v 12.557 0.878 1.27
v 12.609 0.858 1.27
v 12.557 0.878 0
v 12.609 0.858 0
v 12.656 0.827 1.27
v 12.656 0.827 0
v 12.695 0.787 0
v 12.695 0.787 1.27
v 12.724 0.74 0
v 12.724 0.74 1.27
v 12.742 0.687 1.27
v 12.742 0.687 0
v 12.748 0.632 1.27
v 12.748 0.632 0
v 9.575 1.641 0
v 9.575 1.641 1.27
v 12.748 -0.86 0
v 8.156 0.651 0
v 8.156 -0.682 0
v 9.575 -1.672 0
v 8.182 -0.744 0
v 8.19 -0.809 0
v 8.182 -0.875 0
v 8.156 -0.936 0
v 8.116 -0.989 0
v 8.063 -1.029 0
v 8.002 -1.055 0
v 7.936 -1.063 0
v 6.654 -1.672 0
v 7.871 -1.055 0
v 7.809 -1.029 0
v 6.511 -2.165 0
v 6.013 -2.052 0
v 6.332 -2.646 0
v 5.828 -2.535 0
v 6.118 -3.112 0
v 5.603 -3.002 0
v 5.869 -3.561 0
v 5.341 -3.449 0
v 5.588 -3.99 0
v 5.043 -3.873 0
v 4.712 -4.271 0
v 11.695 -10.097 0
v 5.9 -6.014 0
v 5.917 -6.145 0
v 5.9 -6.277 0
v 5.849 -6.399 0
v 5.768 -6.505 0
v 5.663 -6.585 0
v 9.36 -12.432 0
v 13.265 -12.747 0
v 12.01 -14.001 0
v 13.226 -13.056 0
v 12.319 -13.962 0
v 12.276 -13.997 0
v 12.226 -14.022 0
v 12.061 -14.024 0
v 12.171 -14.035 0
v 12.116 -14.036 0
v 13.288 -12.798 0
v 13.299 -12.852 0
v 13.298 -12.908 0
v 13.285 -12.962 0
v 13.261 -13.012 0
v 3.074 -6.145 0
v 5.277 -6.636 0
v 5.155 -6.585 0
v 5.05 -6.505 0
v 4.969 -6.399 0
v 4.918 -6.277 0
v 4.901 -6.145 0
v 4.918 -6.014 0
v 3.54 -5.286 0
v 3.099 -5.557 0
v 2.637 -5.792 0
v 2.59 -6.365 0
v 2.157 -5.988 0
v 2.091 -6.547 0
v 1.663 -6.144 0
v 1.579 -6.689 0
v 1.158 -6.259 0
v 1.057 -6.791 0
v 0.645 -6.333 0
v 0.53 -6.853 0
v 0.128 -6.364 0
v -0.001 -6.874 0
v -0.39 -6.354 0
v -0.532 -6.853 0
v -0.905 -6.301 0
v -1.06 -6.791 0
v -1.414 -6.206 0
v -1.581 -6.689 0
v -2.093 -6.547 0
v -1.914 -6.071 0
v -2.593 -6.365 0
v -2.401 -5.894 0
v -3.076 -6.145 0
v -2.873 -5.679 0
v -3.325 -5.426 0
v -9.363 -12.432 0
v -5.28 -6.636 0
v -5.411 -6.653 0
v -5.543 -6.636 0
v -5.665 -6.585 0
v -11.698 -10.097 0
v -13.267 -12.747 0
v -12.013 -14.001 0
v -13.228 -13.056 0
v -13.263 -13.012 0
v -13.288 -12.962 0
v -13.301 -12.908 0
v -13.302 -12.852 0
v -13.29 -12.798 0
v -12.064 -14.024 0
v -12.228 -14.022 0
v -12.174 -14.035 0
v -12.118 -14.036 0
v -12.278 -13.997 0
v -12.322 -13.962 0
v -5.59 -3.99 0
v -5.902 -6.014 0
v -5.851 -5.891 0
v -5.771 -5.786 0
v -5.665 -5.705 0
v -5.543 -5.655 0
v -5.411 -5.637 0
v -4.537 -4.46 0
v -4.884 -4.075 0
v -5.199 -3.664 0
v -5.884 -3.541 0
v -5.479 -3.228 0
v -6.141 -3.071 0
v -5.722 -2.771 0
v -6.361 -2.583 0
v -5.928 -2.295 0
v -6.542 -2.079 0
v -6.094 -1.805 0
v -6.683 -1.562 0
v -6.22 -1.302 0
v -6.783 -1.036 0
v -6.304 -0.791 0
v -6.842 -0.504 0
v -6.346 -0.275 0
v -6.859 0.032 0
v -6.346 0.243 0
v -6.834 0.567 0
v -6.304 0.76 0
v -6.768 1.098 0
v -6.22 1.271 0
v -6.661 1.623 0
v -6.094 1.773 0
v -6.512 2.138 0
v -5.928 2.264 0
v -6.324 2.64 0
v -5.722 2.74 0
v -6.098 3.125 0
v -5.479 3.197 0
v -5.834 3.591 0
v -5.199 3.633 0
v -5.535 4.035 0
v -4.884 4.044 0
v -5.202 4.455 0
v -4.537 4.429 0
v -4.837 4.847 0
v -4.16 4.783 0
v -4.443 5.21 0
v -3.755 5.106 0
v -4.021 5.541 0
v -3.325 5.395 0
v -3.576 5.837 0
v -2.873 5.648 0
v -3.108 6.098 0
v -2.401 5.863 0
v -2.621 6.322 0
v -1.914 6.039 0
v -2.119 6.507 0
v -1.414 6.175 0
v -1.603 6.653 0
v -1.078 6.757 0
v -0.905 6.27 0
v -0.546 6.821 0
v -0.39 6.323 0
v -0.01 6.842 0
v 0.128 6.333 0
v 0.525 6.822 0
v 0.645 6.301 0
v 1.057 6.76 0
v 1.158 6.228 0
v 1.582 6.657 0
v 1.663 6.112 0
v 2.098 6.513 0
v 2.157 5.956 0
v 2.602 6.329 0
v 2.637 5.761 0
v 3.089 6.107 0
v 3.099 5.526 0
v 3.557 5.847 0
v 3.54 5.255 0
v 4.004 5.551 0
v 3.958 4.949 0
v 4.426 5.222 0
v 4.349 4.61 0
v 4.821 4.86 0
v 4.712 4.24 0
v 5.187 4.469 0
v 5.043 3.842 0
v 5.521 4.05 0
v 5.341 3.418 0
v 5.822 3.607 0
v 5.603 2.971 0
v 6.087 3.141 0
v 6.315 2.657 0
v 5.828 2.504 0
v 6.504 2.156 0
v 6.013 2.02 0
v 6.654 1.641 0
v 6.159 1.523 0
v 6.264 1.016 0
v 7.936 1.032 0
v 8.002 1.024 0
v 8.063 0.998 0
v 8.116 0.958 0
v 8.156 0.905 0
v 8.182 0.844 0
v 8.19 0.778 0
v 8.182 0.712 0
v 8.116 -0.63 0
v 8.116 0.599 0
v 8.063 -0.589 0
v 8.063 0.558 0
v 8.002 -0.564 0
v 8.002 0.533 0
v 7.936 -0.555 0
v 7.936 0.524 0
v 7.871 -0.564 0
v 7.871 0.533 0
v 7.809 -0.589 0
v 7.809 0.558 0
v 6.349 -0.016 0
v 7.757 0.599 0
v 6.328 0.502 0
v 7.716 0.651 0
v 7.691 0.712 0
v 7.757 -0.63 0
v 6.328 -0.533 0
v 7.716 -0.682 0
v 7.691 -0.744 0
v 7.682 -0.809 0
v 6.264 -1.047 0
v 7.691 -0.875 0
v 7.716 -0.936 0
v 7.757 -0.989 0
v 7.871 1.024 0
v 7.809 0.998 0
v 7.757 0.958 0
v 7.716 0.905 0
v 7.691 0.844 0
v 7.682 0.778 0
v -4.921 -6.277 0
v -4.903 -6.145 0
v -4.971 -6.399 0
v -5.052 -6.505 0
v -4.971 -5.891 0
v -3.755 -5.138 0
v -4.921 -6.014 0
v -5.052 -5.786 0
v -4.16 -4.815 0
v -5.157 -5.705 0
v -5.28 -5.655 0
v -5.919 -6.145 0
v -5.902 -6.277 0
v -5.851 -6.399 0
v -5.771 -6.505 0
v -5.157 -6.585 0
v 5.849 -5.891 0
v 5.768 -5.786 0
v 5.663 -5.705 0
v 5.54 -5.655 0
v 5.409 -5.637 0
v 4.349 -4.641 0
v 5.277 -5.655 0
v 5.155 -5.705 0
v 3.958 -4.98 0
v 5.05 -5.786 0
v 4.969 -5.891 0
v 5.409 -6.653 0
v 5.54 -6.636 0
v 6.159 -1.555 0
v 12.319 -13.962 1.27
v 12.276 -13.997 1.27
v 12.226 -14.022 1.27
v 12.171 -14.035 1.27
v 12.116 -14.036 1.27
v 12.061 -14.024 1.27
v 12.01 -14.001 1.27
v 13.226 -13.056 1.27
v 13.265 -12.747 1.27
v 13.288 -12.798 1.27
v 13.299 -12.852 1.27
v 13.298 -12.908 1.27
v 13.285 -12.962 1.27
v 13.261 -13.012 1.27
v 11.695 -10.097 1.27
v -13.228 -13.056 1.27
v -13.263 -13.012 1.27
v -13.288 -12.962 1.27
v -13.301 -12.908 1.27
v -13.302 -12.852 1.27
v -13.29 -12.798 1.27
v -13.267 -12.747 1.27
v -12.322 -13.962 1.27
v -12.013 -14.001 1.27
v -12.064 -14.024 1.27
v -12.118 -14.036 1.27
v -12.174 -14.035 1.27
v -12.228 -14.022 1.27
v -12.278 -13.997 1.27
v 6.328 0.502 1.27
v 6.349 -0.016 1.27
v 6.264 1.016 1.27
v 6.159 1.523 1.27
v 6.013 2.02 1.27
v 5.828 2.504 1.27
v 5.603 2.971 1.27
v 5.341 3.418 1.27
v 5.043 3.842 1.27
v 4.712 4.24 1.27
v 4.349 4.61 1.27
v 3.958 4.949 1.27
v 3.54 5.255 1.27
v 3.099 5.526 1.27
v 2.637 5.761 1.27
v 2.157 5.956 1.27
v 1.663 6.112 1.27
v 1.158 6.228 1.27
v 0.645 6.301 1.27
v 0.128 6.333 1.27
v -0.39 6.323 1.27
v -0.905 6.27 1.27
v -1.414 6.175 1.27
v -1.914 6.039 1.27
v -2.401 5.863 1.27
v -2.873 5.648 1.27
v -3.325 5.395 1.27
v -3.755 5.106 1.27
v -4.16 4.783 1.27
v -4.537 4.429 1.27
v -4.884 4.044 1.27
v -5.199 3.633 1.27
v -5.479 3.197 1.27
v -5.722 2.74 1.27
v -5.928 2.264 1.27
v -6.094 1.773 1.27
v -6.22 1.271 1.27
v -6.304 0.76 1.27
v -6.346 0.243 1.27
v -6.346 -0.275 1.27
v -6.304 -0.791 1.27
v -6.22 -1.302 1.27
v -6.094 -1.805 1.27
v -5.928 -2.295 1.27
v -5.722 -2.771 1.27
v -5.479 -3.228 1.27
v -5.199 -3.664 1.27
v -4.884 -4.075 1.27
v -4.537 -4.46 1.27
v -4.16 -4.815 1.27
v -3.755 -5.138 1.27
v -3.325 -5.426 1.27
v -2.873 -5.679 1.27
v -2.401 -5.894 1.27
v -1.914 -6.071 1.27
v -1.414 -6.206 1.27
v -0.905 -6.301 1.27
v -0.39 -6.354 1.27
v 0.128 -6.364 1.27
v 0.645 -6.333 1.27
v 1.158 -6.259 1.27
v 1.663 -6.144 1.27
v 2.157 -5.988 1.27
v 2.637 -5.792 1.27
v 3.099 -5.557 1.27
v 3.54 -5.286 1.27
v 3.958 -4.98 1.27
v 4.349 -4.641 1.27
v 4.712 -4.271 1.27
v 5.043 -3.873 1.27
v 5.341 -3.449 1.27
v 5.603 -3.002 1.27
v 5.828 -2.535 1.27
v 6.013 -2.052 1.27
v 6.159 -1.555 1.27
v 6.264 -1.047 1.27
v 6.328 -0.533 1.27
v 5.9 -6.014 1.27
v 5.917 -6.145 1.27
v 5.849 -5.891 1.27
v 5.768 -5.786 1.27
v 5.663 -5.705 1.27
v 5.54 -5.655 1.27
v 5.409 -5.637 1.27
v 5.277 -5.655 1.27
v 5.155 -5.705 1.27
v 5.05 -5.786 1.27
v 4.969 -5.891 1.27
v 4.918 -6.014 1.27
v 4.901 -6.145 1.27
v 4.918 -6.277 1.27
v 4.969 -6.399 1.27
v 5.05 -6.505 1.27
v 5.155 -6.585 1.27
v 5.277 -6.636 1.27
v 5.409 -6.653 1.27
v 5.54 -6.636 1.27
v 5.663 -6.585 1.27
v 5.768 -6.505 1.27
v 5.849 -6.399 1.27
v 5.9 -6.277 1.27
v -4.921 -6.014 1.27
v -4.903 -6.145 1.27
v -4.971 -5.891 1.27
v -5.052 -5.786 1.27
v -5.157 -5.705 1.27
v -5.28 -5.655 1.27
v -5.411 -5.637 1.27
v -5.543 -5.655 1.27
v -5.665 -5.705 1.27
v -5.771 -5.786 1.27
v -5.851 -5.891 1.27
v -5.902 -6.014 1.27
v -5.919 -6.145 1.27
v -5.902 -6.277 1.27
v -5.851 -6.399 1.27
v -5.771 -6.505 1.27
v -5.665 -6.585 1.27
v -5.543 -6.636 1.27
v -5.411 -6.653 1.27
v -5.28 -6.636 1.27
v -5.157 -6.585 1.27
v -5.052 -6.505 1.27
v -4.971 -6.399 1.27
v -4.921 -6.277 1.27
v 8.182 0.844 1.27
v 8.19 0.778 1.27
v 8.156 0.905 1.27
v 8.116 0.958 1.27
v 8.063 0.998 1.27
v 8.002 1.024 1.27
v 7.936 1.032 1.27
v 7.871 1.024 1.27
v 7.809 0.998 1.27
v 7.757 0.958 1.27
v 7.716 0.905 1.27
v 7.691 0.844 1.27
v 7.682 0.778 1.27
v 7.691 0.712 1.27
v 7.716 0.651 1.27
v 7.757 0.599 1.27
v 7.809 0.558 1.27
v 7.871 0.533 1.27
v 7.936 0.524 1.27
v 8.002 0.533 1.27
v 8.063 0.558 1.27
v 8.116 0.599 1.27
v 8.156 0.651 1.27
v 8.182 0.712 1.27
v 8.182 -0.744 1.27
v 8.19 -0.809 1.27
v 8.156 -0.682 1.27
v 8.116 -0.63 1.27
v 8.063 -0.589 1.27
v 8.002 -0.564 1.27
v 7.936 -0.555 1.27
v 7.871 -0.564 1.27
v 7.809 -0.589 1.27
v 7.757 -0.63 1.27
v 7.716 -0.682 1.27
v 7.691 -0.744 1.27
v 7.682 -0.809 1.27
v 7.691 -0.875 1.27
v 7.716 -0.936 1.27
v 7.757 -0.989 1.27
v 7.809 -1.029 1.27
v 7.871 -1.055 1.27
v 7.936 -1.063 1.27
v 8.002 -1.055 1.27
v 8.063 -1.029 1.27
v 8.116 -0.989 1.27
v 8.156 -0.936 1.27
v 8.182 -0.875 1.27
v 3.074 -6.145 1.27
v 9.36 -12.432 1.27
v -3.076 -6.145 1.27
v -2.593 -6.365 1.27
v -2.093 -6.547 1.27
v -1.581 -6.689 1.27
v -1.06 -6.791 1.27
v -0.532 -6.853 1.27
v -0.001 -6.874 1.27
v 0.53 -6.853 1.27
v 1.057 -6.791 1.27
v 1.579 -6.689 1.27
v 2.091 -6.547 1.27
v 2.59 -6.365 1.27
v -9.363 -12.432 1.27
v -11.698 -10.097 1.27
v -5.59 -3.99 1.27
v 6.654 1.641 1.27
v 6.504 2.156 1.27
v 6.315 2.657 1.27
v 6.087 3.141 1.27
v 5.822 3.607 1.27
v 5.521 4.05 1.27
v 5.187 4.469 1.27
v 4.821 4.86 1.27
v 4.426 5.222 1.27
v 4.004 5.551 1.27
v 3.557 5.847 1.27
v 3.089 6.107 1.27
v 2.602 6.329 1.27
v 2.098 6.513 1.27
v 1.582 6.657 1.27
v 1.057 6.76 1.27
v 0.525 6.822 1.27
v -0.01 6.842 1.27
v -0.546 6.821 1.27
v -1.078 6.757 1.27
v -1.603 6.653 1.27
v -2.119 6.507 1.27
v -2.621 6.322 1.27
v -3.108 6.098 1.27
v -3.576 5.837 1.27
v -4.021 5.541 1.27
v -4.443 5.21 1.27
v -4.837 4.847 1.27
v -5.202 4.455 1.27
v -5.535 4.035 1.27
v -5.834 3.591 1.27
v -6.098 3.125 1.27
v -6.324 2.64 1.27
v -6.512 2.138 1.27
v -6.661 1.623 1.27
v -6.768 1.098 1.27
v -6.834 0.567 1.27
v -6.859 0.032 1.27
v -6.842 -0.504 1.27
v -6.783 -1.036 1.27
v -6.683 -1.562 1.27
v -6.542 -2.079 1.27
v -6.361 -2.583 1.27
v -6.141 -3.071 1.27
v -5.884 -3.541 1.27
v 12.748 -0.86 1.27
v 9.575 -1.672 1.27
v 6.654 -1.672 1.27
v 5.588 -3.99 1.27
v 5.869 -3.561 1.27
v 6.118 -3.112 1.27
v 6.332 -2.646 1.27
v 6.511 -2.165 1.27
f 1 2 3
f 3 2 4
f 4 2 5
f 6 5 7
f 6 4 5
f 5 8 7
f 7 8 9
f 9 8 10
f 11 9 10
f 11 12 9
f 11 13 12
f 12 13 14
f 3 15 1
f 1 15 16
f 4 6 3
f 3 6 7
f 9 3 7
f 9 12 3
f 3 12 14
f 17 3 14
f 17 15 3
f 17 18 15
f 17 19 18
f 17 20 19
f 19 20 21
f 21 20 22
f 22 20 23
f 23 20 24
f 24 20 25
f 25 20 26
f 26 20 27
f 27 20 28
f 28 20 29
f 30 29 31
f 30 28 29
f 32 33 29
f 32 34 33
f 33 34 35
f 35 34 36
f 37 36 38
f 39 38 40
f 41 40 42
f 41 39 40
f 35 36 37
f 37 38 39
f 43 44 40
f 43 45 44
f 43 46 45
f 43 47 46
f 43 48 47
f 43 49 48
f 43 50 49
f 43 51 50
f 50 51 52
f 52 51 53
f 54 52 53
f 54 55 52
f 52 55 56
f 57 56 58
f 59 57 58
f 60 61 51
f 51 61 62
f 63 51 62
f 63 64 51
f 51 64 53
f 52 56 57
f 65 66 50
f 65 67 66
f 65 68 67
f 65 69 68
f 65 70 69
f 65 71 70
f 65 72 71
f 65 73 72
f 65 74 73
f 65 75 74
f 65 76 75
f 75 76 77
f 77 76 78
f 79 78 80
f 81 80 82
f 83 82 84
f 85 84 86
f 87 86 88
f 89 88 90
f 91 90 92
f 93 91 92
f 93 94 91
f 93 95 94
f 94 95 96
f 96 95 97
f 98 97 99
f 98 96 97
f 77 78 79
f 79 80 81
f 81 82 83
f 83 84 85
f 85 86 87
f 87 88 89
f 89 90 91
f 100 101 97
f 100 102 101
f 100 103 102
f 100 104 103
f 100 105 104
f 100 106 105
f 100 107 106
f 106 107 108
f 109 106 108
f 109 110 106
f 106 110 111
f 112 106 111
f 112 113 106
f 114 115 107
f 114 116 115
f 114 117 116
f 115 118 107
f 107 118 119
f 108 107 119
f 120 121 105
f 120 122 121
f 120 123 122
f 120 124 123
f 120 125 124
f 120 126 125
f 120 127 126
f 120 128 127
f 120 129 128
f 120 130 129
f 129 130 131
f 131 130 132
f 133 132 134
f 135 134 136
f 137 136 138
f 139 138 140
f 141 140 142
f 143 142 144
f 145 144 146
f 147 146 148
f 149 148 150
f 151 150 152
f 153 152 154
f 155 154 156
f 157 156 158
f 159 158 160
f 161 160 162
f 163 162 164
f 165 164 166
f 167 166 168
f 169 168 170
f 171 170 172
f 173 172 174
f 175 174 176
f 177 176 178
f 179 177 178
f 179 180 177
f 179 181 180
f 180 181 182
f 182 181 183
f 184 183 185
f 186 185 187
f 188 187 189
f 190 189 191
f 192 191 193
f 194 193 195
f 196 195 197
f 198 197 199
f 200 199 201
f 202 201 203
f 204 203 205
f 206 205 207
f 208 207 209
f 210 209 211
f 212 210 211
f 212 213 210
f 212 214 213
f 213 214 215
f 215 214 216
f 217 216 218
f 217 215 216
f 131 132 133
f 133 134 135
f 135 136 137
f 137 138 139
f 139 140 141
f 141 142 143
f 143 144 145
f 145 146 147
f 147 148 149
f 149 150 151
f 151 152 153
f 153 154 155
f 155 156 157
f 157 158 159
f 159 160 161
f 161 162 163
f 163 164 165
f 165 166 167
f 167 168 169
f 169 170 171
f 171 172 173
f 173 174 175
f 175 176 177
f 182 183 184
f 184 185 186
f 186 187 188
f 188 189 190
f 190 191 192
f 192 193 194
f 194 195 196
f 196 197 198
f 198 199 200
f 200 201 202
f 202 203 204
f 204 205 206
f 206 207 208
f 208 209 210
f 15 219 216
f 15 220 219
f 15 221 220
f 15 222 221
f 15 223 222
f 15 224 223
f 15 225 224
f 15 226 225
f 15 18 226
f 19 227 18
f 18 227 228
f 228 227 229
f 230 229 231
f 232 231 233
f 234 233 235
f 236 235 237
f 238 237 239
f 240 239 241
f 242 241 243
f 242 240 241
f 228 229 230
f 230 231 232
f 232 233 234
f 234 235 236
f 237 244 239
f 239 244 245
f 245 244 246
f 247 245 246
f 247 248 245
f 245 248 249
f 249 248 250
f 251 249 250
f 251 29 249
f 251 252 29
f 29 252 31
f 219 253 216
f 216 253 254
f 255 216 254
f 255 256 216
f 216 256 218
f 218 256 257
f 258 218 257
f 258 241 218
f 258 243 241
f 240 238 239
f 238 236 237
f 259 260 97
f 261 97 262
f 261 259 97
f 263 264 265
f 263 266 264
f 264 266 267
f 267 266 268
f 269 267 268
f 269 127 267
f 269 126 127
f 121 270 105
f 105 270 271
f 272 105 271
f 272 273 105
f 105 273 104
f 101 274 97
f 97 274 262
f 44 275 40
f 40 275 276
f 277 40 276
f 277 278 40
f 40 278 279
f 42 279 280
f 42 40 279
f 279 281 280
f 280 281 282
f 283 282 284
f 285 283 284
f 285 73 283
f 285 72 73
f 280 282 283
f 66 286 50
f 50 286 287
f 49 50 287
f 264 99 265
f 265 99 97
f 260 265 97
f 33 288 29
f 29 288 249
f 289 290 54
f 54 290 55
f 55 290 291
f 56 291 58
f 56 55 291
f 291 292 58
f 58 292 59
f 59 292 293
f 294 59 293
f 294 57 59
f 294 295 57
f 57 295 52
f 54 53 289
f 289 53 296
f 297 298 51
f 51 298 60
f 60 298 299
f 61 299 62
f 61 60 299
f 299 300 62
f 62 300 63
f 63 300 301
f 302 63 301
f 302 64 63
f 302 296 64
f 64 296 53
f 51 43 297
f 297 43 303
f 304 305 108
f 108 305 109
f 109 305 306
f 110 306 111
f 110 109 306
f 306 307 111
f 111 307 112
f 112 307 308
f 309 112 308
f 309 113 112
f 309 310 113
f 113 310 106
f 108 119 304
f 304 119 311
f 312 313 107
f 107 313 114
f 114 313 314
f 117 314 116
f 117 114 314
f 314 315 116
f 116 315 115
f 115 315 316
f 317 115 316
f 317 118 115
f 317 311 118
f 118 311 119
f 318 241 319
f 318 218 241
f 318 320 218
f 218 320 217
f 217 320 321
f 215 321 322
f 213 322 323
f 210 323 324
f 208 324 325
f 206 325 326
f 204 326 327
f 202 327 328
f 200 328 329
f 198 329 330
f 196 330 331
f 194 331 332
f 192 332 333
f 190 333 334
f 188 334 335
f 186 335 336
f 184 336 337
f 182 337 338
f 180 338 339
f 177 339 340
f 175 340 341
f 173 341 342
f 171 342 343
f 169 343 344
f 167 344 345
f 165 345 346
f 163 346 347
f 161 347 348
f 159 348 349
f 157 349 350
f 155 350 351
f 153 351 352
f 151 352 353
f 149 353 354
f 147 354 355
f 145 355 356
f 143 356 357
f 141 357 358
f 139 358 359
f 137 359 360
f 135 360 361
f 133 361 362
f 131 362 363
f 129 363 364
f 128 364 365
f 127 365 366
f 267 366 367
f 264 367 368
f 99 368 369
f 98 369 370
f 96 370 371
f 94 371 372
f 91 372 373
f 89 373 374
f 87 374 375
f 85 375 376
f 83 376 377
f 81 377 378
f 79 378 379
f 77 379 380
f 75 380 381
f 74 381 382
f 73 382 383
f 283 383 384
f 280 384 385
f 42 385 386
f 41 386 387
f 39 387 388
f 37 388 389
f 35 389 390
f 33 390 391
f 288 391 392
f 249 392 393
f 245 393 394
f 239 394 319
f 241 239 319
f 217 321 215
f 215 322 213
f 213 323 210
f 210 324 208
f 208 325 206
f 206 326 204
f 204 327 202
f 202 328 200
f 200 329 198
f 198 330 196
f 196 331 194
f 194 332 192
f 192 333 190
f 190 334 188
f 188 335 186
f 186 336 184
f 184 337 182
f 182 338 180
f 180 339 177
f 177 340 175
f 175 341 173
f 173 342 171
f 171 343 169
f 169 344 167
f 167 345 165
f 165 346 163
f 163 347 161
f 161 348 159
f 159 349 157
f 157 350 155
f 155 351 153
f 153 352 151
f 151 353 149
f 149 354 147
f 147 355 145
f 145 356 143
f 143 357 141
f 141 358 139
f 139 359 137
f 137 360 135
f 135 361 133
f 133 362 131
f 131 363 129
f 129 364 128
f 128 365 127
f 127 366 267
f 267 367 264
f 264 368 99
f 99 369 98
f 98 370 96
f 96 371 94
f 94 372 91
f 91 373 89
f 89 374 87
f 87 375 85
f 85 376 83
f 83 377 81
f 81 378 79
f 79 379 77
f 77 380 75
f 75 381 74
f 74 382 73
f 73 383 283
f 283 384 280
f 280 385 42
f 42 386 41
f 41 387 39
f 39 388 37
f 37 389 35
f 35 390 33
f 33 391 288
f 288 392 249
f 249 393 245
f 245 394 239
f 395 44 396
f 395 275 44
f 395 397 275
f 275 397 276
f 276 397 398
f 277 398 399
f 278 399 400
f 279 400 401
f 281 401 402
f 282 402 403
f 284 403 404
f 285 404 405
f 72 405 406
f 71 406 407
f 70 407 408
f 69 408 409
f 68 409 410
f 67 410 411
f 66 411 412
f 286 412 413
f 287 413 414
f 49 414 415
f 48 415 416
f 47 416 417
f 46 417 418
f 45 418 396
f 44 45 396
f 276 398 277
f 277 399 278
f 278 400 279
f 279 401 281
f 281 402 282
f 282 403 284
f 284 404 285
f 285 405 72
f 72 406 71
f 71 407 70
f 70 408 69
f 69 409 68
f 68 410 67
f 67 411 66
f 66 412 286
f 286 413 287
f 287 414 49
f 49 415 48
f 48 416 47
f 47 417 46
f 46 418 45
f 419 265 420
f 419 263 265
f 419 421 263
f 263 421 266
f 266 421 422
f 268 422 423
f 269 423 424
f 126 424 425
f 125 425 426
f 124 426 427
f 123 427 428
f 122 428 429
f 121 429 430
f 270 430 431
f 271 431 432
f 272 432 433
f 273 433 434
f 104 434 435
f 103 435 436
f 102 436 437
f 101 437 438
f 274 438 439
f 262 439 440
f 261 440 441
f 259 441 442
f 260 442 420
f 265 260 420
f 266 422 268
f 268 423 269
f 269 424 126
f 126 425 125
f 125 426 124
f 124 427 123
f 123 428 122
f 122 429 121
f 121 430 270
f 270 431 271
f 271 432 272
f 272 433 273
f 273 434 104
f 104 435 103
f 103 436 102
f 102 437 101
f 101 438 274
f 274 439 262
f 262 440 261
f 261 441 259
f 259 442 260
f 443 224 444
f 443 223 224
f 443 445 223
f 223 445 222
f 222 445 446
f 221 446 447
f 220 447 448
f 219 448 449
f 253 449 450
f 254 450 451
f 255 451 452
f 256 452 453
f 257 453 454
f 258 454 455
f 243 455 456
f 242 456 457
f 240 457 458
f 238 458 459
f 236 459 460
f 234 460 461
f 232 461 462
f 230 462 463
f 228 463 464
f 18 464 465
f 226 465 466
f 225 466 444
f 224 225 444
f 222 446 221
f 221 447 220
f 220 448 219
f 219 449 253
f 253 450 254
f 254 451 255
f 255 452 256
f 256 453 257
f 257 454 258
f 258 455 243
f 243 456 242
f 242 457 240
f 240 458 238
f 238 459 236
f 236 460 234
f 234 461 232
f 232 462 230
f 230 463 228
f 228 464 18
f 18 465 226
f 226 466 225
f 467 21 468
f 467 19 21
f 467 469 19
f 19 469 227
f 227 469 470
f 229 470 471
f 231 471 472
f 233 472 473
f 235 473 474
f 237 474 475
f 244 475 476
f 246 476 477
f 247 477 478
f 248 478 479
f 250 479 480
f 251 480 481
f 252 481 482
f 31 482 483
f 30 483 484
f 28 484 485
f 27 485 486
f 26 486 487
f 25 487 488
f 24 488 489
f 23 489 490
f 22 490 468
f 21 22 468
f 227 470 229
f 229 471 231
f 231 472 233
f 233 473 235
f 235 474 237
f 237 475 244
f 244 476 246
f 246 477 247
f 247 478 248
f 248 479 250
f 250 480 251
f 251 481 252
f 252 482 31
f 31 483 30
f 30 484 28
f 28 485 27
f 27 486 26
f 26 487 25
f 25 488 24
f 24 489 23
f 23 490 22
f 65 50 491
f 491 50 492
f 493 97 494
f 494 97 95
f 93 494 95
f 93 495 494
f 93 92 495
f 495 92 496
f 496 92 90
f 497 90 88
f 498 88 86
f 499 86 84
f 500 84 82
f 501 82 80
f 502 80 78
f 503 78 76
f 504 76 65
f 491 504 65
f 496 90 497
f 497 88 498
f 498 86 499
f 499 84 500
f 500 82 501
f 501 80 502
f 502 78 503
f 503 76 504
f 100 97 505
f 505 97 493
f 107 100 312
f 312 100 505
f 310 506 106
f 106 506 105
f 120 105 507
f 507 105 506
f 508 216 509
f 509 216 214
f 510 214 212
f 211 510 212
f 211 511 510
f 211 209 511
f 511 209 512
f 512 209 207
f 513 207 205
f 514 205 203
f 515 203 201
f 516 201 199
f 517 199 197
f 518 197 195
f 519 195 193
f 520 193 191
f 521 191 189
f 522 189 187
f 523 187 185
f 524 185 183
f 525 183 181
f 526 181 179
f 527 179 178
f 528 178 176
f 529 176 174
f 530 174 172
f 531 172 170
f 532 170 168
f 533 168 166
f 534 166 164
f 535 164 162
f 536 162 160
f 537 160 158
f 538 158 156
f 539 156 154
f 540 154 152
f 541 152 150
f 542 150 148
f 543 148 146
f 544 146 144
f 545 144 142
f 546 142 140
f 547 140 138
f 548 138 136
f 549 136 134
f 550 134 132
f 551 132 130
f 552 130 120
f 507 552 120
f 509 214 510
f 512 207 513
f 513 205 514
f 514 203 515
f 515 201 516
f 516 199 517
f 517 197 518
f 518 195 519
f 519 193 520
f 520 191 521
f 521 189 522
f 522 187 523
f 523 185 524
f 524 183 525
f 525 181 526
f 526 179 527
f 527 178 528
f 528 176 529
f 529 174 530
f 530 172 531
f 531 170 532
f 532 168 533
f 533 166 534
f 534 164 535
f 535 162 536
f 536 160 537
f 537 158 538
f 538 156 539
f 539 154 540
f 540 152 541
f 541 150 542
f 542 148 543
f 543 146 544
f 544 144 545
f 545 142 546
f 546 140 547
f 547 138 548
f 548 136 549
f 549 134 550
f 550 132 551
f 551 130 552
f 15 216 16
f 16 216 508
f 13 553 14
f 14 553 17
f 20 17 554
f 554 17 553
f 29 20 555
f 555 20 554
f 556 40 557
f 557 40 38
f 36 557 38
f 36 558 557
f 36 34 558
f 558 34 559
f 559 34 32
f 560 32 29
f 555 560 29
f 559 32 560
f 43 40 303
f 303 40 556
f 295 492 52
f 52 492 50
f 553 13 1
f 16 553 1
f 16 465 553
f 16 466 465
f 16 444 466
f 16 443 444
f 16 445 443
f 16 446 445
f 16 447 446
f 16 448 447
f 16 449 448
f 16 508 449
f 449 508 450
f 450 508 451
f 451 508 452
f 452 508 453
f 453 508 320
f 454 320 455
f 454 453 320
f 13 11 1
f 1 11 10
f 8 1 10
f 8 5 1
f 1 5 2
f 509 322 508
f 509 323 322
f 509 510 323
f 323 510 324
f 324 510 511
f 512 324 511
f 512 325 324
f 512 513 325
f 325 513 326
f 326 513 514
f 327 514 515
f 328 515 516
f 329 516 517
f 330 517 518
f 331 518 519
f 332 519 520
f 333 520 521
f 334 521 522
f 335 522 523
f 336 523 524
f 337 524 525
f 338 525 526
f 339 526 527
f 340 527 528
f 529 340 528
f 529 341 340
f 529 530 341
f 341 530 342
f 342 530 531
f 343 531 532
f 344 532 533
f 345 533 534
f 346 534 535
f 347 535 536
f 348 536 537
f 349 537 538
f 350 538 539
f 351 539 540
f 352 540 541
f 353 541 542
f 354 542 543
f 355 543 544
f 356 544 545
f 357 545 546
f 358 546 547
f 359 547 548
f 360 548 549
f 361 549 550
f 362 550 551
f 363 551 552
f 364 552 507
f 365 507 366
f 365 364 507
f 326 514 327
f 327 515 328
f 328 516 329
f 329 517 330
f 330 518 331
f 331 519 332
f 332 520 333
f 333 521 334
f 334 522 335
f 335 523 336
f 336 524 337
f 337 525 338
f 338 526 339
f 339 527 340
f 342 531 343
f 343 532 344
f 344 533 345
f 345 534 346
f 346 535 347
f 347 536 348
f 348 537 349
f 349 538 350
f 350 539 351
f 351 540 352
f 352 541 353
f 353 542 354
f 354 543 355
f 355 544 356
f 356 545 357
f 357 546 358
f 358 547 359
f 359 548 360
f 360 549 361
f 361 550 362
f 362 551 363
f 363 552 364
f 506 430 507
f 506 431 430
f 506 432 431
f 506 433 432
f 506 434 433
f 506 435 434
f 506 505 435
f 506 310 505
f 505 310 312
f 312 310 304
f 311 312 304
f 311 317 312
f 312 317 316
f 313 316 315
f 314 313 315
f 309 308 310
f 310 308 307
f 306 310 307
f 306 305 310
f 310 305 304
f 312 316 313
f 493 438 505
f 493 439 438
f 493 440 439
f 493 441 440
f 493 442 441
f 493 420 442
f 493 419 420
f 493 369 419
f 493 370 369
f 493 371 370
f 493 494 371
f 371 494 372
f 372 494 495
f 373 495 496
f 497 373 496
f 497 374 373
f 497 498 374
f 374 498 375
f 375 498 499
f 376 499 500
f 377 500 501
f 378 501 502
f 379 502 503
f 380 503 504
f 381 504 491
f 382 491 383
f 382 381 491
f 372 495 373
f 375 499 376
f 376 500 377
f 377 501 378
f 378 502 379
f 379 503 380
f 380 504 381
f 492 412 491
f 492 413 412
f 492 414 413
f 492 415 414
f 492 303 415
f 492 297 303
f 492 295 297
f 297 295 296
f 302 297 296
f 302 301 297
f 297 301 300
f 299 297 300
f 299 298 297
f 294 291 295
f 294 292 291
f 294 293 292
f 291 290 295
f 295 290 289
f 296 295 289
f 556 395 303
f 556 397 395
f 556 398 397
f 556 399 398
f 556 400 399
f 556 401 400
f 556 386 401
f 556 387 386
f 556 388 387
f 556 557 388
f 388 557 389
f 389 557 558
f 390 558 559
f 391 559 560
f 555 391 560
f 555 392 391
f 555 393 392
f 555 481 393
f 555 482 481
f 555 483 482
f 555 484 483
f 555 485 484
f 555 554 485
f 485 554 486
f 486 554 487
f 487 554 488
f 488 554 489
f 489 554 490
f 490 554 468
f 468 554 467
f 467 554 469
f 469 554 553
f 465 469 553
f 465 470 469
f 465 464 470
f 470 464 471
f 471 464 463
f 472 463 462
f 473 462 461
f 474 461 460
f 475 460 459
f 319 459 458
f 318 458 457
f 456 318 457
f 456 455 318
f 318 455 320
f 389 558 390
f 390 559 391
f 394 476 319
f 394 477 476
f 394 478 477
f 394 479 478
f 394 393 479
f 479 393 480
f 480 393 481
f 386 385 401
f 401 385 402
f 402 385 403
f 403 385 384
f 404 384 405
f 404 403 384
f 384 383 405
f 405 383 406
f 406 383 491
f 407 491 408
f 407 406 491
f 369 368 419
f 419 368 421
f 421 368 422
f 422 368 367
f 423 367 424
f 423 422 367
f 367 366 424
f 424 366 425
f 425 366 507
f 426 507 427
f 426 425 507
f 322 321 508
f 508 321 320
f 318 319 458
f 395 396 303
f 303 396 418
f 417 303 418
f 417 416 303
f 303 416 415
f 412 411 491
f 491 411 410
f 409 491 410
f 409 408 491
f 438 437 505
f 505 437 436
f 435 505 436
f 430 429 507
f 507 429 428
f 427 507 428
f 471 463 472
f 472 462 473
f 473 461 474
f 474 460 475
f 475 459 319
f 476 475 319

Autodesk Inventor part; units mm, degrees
ref_plane "YZ Plane" through (0, 0, 0) normal (1, 0, 0) x (0, 1, 0)
ref_plane "XZ Plane" through (0, 0, 0) normal (0, 1, 0) x (-1, 0, 0)
ref_plane "XY Plane" through (0, 0, 0) normal (0, 0, 1) x (1, 0, 0)
sketch "Sketch1" plane through (0, 0, 0) normal (0, 0, 1) x (1, 0, 0)
  line L0 (-0.0012, 9.6891) -> (-0.0012, -0.0155) construction
  circle A0 centre (-0.0012, -0.0155) radius 6.35
  line L1 (9.3601, -12.4316) -> (3.0739, -6.1454)
  line L2 (5.5879, -3.9897) -> (11.6952, -10.0969)
  line L3 (9.3601, -12.4316) -> (12.1799, -14.1019)
  line L4 (12.1799, -14.1019) -> (13.3653, -12.9165)
  line L5 (13.3653, -12.9165) -> (11.6952, -10.0969)
  line L6 (13.4673, -0.0155) -> (-6.3512, -0.0155) construction
  arc A1 (-3.0764, -6.1454) -> (3.0739, -6.1454) centre (-0.0012, -0.0155) ccw
  arc A2 (0.9828, -6.8026) -> (3.0739, -6.1454) centre (-0.0012, -0.0155) ccw
  arc A3 (-0.0012, 6.8425) -> (-5.5904, -3.9897) centre (-0.0012, -0.0155) ccw
  arc A4 (-6.8132, -0.8093) -> (-5.5904, -3.9897) centre (-0.0012, -0.0155) ccw
  arc A5 (5.5879, -3.9897) -> (6.6536, -1.6723) centre (-0.0012, -0.0155) ccw
  arc A6 (6.6536, 1.6412) -> (3.738, 5.7334) centre (-0.0012, -0.0155) ccw
  arc A7 (5.5879, -3.9897) -> (6.6536, -1.6723) centre (-0.0012, -0.0155) ccw
  arc A8 (6.6536, 1.6412) -> (-0.0012, 6.8425) centre (-0.0012, -0.0155) ccw
  line L7 (5.5879, -3.9897) -> (21.5848, -3.9897) construction
  line L8 (-9.3626, -12.4316) -> (-3.0764, -6.1454)
  line L9 (-5.5904, -3.9897) -> (-11.6977, -10.0969)
  line L10 (-9.3626, -12.4316) -> (-12.1824, -14.1019)
  line L11 (-12.1824, -14.1019) -> (-13.3678, -12.9165)
  line L12 (-13.3678, -12.9165) -> (-11.6977, -10.0969)
  line L13 (9.5746, 1.6412) -> (12.7483, 0.8287)
  line L14 (6.6536, 1.6412) -> (9.5746, 1.6412)
  line L15 (9.5746, -1.6723) -> (12.7483, -0.8598)
  line L16 (6.6536, -1.6723) -> (9.5746, -1.6723)
  circle A9 centre (7.9363, -0.8093) radius 0.254
  circle A10 centre (7.9363, 0.7782) radius 0.254
  circle A11 centre (-5.4113, -6.1454) radius 0.508
  line L17 (12.7483, 0.8287) -> (12.7483, -0.8598)
  circle A12 centre (5.4088, -6.1454) radius 0.508
  point P0 (13.4229, -0.6871)
  point P1 (13.4673, -0.0008)
  dimension "d35" = 12.7
  dimension "d72" = 8.89
  dimension "d73" = 3.2774
  dimension "d77" = 194.36
  dimension "d78" = 1.6764
  dimension "d115" = 90
  dimension "d128" = 165.64
  dimension "d148" = 0.508
  dimension "d154" = 3.302
  dimension "d160" = 3.276
  dimension "d166" = 0.508
  dimension "d168" = 7.9375
  dimension "d169" = 0.863
  dimension "d176" = 1.016
  dimension "d182" = 3.3135
  dimension "d184" = 1.6885
  dimension "d191" = 2.921
  dimension "d234" = 24.3623
extrude "Extrusion8" add sketch "Sketch1" along normal blind 1.27
fillet "Fillet57" radius 0.254 1 edges at (-12.1824, -14.1019, 0.635)
fillet "Fillet58" radius 0.254 1 edges at (-13.3678, -12.9165, 0.635)
fillet "Fillet59" radius 0.254 1 edges at (13.3653, -12.9165, 0.635)
fillet "Fillet60" radius 0.254 1 edges at (12.1799, -14.1019, 0.635)
fillet "Fillet63" radius 0.254 1 edges at (12.7483, 0.8287, 0.635)
equation "\"BendRadius\" = Thickness"
equation "\"BendReliefWidth\" = Thickness"
equation "\"BendReliefDepth\" = 0.5 * Thickness"
equation "\"CornerReliefSize\" = 4 * Thickness"
equation "\"MinimumRemnant\" = 2 * Thickness"
equation "\"TransitionRadius\" = BendRadius"
equation "\"JacobiRadiusSize\" = BendRadius"
equation "\"GapSize\" = Thickness"
equation "\"Thickness\" = 3.048"
properties part number "CircularHeadbar_large_simple"
